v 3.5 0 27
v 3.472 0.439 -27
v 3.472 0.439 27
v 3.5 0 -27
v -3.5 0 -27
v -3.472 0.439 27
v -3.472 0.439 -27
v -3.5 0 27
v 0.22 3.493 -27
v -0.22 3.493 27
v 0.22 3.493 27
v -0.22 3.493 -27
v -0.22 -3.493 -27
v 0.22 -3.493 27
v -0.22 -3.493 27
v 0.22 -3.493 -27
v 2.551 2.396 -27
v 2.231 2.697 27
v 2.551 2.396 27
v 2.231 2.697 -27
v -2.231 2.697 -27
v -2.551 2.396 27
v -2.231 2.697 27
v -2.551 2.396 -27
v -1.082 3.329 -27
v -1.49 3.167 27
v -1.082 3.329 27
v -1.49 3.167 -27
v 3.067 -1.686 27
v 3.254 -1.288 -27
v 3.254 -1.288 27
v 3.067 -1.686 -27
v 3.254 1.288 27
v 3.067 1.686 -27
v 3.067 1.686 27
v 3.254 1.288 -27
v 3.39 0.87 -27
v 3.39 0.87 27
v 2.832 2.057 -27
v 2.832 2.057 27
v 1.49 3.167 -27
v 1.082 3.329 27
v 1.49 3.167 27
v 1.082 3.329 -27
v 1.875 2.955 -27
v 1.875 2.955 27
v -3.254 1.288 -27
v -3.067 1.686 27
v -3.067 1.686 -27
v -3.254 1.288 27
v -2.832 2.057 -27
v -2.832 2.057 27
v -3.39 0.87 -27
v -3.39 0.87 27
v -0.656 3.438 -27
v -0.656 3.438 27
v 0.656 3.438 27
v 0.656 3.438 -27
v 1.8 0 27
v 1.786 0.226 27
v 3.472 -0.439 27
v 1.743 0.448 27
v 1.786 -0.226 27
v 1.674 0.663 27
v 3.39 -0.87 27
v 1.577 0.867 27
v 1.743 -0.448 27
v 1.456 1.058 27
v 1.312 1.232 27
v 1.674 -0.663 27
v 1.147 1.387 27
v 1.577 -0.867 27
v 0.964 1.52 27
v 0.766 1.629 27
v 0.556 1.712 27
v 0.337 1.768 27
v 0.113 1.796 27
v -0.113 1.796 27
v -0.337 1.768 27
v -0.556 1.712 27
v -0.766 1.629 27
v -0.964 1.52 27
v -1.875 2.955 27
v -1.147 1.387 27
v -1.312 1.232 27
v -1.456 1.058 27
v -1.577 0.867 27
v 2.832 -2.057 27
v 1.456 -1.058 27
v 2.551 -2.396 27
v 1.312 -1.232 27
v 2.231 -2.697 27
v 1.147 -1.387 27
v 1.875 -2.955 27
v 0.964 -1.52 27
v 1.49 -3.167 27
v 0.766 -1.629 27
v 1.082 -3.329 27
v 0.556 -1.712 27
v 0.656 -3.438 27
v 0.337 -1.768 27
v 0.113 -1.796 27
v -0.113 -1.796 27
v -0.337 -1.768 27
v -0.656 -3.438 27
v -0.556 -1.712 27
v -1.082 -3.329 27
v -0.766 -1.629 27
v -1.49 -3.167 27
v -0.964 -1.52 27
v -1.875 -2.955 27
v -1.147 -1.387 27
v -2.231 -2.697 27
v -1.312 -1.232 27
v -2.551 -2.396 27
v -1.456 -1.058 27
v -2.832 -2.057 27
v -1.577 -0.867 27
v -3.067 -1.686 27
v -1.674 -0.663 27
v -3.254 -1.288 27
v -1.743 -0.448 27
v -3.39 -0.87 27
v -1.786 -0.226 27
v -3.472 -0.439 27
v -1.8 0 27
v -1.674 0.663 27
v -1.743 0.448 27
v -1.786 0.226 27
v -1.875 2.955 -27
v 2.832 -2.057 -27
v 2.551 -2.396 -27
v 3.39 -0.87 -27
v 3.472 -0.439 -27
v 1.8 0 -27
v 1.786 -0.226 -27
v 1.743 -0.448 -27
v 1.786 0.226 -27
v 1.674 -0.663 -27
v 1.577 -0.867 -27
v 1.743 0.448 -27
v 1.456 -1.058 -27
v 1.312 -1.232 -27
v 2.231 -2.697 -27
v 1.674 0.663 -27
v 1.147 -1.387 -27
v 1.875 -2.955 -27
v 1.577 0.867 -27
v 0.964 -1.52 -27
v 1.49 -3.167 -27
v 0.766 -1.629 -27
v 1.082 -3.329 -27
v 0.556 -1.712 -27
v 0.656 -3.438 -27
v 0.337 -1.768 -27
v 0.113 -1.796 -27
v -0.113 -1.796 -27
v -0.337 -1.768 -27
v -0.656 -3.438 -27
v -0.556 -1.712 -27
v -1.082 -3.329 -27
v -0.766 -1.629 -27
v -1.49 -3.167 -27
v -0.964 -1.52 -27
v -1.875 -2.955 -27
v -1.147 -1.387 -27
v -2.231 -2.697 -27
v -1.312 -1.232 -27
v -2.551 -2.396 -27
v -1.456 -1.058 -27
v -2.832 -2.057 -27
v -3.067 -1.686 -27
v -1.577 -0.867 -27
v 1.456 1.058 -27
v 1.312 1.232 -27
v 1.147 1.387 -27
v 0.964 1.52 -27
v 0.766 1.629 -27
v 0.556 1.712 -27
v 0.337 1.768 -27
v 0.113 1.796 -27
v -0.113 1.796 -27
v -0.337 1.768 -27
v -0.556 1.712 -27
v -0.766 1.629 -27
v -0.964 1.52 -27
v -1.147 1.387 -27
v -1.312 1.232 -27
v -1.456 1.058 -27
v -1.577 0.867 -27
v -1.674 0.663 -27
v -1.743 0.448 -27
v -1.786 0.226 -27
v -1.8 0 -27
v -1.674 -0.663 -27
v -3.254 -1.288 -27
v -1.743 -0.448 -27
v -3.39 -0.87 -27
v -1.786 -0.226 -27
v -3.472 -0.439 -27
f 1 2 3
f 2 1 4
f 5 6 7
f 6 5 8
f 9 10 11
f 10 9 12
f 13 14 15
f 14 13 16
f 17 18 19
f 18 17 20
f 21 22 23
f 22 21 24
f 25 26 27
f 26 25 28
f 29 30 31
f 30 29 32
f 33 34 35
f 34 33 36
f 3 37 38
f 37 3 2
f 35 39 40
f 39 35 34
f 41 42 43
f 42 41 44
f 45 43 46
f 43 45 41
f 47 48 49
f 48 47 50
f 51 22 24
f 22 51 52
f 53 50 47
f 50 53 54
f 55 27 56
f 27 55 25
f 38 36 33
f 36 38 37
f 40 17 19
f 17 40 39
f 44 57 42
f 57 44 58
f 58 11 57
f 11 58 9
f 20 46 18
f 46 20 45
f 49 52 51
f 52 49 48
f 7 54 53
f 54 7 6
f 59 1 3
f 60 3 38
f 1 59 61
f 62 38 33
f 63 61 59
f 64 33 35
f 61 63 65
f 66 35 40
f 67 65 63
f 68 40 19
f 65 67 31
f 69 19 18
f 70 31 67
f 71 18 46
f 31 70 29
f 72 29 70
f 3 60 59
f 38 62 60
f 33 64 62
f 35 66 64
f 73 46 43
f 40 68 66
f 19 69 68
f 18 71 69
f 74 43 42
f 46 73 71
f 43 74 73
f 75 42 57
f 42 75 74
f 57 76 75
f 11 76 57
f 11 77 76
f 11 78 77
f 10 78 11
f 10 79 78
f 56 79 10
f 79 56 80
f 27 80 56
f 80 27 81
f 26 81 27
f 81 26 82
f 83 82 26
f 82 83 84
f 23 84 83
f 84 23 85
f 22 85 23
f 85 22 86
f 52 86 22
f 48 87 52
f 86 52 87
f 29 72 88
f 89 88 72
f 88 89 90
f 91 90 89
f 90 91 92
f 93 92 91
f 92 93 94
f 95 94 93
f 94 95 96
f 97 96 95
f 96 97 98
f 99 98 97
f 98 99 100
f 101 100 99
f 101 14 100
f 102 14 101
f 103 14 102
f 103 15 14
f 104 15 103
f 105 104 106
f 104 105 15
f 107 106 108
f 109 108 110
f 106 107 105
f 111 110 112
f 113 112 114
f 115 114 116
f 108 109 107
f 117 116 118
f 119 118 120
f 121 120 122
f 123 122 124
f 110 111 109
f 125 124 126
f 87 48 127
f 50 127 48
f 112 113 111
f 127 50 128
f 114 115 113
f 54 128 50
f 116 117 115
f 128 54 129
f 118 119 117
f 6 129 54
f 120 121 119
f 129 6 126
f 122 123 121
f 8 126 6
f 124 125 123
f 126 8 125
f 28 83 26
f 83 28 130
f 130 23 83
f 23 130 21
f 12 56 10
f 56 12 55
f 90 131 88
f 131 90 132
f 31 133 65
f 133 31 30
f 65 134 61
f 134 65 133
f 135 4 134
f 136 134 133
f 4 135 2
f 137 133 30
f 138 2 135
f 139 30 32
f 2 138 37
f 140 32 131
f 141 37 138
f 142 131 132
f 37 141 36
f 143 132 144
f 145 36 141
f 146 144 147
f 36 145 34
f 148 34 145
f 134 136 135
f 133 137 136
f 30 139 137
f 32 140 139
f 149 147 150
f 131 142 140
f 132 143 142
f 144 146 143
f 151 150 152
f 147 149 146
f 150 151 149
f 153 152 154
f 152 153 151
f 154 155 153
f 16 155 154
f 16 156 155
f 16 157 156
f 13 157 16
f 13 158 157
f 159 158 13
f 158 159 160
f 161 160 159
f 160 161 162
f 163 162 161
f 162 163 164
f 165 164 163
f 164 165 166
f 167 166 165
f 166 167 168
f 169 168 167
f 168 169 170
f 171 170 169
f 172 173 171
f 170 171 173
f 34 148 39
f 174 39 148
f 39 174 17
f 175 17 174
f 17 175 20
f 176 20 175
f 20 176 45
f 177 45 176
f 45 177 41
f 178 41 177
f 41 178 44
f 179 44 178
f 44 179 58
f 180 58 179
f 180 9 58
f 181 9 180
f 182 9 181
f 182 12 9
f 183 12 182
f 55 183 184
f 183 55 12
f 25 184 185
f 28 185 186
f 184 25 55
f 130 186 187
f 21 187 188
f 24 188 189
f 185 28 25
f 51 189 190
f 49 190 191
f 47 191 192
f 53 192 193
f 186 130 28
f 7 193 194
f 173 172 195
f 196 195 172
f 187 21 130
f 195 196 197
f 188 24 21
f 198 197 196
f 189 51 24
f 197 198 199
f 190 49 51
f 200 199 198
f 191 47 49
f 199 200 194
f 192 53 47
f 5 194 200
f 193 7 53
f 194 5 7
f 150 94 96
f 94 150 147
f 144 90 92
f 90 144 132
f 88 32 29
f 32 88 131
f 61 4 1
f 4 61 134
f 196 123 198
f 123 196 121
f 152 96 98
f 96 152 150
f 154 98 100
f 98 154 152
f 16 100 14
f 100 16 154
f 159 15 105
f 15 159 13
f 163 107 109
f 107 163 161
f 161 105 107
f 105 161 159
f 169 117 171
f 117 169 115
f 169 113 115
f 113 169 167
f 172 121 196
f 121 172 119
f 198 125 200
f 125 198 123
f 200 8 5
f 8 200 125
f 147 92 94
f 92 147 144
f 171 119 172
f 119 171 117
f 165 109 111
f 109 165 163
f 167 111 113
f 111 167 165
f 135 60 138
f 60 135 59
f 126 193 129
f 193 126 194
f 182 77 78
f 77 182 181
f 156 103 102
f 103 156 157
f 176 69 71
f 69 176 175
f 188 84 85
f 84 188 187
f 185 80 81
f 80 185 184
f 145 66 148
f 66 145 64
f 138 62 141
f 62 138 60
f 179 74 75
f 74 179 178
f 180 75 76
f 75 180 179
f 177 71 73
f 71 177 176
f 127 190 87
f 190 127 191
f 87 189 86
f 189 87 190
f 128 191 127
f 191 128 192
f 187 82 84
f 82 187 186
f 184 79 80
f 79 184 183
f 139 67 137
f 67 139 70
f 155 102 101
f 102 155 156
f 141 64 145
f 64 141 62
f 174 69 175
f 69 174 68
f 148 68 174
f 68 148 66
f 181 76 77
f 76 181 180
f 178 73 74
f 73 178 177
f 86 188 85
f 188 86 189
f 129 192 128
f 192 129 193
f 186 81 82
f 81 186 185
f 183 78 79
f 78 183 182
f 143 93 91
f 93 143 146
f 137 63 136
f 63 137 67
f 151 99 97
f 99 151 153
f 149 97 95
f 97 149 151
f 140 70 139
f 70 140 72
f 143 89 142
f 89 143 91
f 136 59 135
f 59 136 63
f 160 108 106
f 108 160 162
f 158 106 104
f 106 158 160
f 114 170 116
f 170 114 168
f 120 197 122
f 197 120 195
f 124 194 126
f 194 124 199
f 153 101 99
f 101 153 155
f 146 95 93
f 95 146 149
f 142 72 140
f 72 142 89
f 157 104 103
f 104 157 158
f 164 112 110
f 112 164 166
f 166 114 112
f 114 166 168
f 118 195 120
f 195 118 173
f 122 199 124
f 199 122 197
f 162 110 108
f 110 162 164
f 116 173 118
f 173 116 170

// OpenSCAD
$fn = 50;


difference() {
	union() {
		translate(v = [0, 0, -27.0000000000]) {
			cylinder(h = 54, r = 3.5000000000);
		}
	}
	union() {
		translate(v = [0, 0, -100.0000000000]) {
			cylinder(h = 200, r = 1.8000000000);
		}
	}
}
